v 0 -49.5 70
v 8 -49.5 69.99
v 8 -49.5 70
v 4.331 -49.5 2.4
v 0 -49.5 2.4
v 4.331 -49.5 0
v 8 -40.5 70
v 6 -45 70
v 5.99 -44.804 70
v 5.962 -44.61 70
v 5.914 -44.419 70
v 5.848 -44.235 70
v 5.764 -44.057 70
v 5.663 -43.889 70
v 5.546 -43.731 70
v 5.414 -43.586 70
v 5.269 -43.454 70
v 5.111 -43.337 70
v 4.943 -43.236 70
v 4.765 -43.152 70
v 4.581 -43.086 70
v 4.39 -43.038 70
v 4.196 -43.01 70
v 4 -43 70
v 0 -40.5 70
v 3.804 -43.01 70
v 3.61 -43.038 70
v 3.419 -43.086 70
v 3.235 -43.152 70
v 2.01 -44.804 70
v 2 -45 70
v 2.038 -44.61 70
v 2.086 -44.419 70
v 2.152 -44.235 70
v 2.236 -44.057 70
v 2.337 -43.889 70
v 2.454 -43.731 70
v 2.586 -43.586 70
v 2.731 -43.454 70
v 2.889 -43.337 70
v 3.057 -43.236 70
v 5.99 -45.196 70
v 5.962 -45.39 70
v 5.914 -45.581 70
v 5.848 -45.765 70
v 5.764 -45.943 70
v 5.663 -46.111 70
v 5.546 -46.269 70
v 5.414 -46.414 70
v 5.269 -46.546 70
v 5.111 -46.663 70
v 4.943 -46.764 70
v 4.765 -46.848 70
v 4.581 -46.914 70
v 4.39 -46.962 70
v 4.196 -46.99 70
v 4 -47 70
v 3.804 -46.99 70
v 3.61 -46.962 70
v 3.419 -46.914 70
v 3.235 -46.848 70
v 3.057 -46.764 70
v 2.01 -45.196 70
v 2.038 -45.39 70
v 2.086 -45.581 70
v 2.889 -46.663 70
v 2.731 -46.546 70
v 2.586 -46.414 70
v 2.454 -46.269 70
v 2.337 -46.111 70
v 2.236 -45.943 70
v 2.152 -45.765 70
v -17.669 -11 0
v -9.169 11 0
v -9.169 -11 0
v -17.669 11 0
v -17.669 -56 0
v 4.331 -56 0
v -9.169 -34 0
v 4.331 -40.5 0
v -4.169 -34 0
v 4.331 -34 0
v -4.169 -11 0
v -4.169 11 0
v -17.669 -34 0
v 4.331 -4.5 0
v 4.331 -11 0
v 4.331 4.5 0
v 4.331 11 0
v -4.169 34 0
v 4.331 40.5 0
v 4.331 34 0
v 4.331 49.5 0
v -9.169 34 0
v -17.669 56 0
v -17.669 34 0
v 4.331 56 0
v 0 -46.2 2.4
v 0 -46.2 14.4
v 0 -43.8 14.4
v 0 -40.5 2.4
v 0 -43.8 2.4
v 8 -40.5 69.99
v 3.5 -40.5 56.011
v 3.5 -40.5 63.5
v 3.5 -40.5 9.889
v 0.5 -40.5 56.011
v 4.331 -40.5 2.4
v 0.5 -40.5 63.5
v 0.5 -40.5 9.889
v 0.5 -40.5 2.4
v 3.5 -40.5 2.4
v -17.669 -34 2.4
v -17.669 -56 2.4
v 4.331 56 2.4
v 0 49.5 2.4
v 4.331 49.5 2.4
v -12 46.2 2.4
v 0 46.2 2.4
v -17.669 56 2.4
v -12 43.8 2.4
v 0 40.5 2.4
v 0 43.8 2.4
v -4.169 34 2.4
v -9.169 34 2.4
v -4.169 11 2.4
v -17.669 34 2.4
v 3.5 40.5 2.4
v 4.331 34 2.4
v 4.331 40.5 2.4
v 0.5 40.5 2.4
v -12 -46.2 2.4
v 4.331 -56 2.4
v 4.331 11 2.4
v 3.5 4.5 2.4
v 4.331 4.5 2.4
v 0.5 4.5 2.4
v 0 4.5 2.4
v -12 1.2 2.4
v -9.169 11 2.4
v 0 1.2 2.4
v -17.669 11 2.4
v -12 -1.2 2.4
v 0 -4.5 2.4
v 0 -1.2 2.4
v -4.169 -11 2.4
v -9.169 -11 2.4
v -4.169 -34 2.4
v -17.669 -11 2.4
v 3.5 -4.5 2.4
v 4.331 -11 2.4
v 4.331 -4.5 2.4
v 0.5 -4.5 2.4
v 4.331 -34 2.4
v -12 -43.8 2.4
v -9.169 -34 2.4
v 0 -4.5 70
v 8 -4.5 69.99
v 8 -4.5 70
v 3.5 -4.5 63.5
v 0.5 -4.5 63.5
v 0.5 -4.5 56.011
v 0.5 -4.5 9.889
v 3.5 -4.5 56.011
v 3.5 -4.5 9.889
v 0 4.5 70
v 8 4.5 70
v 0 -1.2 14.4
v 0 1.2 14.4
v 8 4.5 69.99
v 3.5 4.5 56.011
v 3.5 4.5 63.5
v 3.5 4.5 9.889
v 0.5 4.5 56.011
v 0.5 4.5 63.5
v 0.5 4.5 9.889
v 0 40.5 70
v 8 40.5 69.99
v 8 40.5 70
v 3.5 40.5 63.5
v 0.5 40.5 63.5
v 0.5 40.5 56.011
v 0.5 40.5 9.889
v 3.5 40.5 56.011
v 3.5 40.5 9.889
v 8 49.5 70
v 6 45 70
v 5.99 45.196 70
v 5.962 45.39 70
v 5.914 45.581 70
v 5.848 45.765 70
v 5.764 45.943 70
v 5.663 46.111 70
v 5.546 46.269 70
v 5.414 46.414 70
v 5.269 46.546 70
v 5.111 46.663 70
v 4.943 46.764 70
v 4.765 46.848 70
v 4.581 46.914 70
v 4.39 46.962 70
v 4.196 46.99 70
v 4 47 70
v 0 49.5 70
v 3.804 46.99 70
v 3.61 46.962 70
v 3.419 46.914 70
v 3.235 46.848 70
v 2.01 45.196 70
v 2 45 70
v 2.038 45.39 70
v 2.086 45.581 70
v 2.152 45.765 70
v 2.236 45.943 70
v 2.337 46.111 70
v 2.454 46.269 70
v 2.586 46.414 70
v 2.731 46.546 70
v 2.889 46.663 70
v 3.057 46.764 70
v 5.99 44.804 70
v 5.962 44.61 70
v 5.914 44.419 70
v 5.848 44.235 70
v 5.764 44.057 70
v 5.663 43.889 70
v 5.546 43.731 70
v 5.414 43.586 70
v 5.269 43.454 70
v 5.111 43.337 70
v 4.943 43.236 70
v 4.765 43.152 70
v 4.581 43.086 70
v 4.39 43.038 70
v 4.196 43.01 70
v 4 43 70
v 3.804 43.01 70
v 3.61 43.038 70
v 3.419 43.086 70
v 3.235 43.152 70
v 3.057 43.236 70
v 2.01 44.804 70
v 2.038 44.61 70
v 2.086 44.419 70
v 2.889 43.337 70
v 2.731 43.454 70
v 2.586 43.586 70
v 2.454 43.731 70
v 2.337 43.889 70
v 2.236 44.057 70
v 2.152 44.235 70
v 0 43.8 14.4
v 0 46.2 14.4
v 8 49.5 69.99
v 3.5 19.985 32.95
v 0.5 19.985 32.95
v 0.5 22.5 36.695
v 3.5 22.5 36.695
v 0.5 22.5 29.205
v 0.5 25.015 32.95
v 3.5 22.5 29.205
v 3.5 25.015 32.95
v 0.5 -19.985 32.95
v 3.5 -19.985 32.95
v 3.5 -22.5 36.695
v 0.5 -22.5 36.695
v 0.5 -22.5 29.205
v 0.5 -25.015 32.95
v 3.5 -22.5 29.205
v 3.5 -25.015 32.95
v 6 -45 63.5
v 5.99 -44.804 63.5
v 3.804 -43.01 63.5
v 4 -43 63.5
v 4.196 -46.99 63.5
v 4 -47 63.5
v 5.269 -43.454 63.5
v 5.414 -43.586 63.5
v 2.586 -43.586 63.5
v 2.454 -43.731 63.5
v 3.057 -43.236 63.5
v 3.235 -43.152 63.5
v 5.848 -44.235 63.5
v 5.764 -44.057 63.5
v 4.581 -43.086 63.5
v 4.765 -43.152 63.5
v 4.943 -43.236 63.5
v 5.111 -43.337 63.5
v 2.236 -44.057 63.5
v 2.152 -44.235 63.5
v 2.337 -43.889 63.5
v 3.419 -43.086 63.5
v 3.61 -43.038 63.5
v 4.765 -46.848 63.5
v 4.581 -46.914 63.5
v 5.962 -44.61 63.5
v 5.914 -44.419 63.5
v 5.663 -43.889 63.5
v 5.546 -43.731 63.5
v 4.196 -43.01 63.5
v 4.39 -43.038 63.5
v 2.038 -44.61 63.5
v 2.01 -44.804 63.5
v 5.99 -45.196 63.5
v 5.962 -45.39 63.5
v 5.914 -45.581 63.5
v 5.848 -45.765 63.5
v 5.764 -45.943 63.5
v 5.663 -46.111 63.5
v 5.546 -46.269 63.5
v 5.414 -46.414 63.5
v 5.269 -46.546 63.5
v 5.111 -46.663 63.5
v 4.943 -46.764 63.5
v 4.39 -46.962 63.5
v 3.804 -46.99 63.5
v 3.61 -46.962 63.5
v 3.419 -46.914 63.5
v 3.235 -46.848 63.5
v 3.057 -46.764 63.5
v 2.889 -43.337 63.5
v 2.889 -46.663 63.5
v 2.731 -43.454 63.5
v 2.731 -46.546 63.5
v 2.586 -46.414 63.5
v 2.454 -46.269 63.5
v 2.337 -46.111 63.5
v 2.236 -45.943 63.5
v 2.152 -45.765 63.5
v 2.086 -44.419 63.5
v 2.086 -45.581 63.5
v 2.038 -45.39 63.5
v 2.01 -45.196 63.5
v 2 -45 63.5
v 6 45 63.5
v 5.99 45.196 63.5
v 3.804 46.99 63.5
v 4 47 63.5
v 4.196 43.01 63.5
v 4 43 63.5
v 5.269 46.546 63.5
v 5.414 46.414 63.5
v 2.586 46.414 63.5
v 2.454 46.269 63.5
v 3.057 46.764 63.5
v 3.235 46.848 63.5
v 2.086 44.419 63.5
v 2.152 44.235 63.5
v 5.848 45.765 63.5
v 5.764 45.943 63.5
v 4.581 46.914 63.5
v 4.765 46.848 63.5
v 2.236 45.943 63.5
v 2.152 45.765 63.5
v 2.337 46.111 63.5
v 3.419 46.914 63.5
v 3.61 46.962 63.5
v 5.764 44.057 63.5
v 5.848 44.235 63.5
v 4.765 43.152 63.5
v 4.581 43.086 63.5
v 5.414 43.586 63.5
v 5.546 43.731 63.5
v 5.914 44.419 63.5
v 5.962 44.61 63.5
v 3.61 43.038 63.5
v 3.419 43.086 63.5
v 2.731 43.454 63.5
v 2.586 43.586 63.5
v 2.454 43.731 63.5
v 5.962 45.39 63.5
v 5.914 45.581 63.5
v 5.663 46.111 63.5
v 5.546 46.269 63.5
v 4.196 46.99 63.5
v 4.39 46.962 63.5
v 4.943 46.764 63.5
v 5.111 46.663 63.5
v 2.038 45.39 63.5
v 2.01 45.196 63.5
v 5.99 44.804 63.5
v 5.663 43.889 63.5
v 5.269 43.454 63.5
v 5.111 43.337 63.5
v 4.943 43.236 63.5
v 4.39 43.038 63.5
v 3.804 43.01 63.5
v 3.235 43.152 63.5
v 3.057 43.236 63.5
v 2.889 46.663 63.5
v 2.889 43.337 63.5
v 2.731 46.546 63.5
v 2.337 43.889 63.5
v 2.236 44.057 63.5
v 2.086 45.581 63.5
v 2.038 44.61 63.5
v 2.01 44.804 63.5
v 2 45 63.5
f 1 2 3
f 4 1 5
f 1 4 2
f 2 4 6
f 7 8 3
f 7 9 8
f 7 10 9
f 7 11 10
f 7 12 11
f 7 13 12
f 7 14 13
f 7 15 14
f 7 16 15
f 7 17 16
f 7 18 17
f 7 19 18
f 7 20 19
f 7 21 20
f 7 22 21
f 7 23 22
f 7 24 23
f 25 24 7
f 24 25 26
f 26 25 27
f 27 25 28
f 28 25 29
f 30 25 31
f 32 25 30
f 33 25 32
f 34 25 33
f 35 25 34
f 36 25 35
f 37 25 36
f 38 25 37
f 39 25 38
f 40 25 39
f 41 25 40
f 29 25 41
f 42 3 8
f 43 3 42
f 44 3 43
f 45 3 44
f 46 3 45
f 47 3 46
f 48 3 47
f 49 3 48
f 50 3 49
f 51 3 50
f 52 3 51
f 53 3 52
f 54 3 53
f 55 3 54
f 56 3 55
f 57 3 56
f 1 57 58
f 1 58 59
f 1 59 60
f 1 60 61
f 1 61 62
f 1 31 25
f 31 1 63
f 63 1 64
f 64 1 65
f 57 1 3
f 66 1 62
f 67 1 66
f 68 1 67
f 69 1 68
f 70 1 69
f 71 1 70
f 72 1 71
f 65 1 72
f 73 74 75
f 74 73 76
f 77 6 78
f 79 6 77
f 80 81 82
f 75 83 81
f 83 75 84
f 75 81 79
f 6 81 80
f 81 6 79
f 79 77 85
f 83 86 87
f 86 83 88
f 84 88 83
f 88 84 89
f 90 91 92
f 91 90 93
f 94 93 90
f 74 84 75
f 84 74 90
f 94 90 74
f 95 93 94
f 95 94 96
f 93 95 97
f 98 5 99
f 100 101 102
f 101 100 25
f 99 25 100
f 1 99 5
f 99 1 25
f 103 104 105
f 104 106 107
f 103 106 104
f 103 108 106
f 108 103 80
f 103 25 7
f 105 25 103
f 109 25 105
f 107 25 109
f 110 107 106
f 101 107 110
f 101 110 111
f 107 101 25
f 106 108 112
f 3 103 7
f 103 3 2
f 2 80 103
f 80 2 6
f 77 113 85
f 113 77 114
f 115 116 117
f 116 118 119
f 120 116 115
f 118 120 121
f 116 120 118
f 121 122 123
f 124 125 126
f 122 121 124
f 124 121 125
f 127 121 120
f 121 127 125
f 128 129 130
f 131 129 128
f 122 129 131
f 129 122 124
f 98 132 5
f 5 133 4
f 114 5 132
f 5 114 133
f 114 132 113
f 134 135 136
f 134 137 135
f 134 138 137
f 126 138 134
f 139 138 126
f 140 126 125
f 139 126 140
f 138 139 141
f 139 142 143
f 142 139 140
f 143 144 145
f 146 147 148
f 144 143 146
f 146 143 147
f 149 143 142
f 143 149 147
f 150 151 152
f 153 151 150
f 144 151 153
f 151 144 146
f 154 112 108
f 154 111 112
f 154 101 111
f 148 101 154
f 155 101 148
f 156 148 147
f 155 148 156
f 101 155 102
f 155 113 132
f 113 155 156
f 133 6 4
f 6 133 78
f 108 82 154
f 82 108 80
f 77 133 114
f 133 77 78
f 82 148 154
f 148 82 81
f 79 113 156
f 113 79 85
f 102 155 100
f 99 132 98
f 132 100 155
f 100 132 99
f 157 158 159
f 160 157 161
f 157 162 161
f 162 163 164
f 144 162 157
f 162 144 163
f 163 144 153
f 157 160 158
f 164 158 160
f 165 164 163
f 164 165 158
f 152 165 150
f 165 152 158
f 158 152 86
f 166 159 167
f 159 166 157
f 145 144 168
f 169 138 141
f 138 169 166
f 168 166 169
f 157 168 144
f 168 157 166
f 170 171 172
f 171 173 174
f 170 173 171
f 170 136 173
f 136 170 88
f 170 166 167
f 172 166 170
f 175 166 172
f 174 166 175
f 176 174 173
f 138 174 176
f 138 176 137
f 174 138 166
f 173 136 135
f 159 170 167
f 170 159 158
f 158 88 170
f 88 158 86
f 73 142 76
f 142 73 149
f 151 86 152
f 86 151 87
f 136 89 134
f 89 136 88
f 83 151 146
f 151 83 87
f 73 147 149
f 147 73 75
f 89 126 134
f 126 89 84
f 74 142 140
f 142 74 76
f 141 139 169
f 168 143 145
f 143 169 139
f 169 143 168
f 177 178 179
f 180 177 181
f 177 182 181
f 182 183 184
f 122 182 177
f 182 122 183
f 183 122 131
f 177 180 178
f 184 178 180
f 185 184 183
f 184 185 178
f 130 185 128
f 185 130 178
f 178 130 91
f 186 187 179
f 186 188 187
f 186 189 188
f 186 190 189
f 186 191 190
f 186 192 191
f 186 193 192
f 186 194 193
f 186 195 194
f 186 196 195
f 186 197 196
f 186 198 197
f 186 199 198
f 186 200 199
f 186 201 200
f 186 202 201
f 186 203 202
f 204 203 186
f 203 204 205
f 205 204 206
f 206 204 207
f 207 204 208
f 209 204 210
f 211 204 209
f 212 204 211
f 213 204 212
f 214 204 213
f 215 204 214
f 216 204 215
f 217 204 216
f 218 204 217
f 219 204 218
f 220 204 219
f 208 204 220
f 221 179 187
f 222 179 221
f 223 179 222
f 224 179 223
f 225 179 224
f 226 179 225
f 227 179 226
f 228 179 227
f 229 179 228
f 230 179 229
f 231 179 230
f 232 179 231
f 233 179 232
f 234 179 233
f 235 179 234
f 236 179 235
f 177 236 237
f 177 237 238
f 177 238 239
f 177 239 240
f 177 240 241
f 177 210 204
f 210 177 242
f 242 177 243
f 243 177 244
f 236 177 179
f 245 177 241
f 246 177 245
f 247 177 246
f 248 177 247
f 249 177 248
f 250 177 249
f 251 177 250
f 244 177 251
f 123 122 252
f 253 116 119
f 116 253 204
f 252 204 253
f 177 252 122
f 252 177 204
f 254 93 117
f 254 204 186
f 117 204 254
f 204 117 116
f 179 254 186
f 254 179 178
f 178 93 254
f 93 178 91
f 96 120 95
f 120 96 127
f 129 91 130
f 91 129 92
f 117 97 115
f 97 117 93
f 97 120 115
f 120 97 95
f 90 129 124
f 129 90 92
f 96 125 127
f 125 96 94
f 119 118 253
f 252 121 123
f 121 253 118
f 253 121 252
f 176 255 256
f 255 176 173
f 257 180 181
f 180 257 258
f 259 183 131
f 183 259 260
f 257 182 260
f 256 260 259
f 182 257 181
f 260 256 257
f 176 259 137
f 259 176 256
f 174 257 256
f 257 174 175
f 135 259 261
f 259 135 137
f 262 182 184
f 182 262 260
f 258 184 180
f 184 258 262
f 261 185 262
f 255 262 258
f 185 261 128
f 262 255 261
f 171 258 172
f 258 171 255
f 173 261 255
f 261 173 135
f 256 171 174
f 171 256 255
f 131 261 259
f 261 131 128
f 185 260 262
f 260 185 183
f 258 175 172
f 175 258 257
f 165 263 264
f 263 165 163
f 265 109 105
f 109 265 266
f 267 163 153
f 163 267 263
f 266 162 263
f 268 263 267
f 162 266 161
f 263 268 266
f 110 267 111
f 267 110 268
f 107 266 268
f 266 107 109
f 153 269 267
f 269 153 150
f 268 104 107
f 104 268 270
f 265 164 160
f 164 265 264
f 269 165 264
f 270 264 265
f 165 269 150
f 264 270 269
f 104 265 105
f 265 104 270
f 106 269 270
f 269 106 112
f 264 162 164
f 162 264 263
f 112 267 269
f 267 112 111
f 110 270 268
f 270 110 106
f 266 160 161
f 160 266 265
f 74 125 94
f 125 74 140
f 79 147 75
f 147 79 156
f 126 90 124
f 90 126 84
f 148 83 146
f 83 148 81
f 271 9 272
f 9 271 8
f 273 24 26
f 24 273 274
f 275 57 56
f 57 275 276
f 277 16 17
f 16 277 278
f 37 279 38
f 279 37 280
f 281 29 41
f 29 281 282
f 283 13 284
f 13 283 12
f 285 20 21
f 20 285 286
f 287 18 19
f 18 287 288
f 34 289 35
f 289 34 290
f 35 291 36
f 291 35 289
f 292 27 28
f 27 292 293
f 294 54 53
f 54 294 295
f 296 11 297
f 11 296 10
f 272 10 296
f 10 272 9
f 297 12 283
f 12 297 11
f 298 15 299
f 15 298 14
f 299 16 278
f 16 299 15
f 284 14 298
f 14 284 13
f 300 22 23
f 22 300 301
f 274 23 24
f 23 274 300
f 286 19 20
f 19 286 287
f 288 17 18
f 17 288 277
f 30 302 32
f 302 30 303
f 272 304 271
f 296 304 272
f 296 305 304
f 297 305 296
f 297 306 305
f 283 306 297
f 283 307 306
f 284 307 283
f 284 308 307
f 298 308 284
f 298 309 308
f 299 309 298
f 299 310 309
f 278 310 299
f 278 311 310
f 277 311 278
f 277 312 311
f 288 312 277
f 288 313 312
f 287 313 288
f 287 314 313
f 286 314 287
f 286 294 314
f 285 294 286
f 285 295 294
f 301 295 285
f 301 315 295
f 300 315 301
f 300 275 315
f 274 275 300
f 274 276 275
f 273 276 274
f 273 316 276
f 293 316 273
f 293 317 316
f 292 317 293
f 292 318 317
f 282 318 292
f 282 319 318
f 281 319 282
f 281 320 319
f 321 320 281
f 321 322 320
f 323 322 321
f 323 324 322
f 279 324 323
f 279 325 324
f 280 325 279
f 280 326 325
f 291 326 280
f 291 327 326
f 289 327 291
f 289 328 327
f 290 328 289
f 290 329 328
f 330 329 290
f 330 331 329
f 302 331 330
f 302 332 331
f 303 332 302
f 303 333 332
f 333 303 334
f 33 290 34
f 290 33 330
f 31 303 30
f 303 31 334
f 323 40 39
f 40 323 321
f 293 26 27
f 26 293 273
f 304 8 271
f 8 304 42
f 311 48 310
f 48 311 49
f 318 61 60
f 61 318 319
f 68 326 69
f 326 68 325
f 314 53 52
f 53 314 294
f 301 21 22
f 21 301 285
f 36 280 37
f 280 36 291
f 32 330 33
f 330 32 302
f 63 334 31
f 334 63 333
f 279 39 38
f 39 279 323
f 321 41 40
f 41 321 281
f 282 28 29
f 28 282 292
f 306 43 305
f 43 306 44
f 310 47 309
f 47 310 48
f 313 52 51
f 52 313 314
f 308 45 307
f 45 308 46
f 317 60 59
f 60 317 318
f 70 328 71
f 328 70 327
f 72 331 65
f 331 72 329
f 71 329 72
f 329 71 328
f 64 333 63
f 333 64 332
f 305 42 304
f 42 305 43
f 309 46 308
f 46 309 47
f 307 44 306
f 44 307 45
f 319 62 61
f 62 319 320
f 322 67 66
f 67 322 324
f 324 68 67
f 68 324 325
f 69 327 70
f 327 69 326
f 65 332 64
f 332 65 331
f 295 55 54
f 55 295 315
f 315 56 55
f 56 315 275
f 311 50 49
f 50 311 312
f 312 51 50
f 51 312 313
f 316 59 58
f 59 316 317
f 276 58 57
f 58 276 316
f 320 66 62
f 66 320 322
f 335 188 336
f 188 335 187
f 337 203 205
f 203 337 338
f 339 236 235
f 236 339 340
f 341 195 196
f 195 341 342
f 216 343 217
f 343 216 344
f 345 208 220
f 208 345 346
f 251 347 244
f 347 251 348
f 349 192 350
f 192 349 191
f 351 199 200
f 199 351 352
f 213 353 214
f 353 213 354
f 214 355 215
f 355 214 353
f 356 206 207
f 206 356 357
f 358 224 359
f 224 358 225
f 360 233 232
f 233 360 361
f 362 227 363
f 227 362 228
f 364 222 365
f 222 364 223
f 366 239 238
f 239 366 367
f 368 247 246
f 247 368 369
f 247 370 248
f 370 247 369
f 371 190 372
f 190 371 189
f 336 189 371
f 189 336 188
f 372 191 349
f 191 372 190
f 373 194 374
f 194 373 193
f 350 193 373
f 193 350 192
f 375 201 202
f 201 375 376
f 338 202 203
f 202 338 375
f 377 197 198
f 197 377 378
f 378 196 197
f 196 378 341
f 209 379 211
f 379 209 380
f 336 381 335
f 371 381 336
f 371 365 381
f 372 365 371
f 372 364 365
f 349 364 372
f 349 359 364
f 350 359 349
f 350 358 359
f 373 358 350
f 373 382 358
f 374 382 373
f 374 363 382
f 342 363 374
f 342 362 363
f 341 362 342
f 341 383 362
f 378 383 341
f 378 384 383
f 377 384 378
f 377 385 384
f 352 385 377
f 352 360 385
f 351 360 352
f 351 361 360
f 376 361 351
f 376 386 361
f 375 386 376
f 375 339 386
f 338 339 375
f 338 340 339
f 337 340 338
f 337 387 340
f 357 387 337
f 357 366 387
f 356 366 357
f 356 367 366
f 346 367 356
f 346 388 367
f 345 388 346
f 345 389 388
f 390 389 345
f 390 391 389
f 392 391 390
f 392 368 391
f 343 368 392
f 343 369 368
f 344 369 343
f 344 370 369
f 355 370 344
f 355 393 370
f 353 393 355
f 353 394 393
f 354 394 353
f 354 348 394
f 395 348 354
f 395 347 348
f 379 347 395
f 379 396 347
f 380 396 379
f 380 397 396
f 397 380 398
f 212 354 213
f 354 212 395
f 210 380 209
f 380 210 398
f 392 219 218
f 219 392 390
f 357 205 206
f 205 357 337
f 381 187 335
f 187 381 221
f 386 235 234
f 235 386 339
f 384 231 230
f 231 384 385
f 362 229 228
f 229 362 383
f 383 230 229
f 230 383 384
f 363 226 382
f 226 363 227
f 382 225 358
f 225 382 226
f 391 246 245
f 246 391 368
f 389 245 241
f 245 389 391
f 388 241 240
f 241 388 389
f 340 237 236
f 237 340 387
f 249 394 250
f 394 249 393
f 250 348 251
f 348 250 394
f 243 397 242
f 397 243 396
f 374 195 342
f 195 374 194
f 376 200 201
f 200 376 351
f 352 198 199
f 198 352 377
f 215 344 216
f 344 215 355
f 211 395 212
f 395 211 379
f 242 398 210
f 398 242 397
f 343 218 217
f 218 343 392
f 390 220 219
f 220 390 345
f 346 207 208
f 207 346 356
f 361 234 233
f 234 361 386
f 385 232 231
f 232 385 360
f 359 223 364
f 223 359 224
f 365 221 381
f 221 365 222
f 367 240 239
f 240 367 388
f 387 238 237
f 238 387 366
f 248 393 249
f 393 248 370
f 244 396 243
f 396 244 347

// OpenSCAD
// Apache 2800 Eurorack Plate
// Copyright (c) 2026 William Chrapcynski
// Licensed under CC BY-NC-SA 4.0
// https://creativecommons.org/licenses/by-nc-sa/4.0/

/* [Bracket] */
// Bracket Height
bracket_height = 70;
// Post Depth
post_depth = 8;
// Post Width
post_width = 9;
// Post Spacing - Must match screw_position_y in the plate
post_spacing = 45; 
// Wall Draft - Sets angle / bracket lean
wall_draft = 3;
// Wall Draft Offset
draft_offset = bracket_height * tan(wall_draft);

/* [Pads] */
// Pad 
// Pad Length (X)
pad_length = 22;
// Pad Width (Y)
pad_width = 22;
// Pad Thickness
pad_thickness = 2.4;
// Tie Strip Width
tie_strip_width = 5;

/* [Gussets] */
// Guesset Size
gusset_size = 12;
// Gusset Thickness
gusset_thickness = 2.4;

/* [Braces] */
// Brace Thickness
brace_thickness = 3;
// Brace Width
brace_width = 6;
// Brace Top Gap
brace_top_gap = 6.5;

/* [Inserts] */
// Insert Hole Diameter
insert_hole_diameter = 4;
// Insert Hole Depth
insert_hole_depth = 6.5;

/* [Misc] */
// Rounding segments
$fn = 64;

difference() {
    union() {
        // Create Posts and Feet
        for(y = [-post_spacing, 0, post_spacing])
            translate([0, y, 0]) {
                hull() {
                    translate([0, -post_width / 2, 0])
                        cube([post_depth - draft_offset, post_width, 0.01]);
                    translate([0, -post_width / 2, bracket_height - 0.01])
                        cube([post_depth, post_width, 0.01]);
                }
                translate([post_depth - draft_offset - pad_length, -pad_width /2, 0])
                    cube([pad_length, pad_width, pad_thickness]);
                translate([0, gusset_thickness / 2, pad_thickness])
                    rotate([90, 0, 0]) 
                        linear_extrude(height = gusset_thickness) 
                            polygon([[0, 0], [-gusset_size, 0], [0, gusset_size]]);
            }
            // Create Tie Strip
            translate([post_depth - draft_offset - (pad_length / 2) - (tie_strip_width / 2), -post_spacing, 0])
                cube([tie_strip_width, 2 * post_spacing, pad_thickness]);

        // Create Cross Bracing
        for(m = [0,1])
            mirror([0, m, 0]) {
                hull() {
                    translate([0.5, (post_width / 2) - 1, pad_thickness])
                        cube([brace_thickness, 1, brace_width]);
                    translate([0.5, post_spacing - (post_width / 2), bracket_height - brace_top_gap - brace_width])
                        cube([brace_thickness, 1, brace_width]);
                }

                hull() {
                    translate([0.5, post_spacing - (post_width / 2), pad_thickness])
                        cube([brace_thickness, 1, brace_width]);
                    translate([0.5, (post_width / 2) - 1, bracket_height - brace_top_gap - brace_width])
                        cube([brace_thickness, 1, brace_width]);
                }
        }
    }
    // Create Insert Holes
    for(sy = [-1, 1])
        translate([post_depth / 2, sy * post_spacing, bracket_height - insert_hole_depth])
            cylinder(d = insert_hole_diameter, h = insert_hole_depth + 1);
}
